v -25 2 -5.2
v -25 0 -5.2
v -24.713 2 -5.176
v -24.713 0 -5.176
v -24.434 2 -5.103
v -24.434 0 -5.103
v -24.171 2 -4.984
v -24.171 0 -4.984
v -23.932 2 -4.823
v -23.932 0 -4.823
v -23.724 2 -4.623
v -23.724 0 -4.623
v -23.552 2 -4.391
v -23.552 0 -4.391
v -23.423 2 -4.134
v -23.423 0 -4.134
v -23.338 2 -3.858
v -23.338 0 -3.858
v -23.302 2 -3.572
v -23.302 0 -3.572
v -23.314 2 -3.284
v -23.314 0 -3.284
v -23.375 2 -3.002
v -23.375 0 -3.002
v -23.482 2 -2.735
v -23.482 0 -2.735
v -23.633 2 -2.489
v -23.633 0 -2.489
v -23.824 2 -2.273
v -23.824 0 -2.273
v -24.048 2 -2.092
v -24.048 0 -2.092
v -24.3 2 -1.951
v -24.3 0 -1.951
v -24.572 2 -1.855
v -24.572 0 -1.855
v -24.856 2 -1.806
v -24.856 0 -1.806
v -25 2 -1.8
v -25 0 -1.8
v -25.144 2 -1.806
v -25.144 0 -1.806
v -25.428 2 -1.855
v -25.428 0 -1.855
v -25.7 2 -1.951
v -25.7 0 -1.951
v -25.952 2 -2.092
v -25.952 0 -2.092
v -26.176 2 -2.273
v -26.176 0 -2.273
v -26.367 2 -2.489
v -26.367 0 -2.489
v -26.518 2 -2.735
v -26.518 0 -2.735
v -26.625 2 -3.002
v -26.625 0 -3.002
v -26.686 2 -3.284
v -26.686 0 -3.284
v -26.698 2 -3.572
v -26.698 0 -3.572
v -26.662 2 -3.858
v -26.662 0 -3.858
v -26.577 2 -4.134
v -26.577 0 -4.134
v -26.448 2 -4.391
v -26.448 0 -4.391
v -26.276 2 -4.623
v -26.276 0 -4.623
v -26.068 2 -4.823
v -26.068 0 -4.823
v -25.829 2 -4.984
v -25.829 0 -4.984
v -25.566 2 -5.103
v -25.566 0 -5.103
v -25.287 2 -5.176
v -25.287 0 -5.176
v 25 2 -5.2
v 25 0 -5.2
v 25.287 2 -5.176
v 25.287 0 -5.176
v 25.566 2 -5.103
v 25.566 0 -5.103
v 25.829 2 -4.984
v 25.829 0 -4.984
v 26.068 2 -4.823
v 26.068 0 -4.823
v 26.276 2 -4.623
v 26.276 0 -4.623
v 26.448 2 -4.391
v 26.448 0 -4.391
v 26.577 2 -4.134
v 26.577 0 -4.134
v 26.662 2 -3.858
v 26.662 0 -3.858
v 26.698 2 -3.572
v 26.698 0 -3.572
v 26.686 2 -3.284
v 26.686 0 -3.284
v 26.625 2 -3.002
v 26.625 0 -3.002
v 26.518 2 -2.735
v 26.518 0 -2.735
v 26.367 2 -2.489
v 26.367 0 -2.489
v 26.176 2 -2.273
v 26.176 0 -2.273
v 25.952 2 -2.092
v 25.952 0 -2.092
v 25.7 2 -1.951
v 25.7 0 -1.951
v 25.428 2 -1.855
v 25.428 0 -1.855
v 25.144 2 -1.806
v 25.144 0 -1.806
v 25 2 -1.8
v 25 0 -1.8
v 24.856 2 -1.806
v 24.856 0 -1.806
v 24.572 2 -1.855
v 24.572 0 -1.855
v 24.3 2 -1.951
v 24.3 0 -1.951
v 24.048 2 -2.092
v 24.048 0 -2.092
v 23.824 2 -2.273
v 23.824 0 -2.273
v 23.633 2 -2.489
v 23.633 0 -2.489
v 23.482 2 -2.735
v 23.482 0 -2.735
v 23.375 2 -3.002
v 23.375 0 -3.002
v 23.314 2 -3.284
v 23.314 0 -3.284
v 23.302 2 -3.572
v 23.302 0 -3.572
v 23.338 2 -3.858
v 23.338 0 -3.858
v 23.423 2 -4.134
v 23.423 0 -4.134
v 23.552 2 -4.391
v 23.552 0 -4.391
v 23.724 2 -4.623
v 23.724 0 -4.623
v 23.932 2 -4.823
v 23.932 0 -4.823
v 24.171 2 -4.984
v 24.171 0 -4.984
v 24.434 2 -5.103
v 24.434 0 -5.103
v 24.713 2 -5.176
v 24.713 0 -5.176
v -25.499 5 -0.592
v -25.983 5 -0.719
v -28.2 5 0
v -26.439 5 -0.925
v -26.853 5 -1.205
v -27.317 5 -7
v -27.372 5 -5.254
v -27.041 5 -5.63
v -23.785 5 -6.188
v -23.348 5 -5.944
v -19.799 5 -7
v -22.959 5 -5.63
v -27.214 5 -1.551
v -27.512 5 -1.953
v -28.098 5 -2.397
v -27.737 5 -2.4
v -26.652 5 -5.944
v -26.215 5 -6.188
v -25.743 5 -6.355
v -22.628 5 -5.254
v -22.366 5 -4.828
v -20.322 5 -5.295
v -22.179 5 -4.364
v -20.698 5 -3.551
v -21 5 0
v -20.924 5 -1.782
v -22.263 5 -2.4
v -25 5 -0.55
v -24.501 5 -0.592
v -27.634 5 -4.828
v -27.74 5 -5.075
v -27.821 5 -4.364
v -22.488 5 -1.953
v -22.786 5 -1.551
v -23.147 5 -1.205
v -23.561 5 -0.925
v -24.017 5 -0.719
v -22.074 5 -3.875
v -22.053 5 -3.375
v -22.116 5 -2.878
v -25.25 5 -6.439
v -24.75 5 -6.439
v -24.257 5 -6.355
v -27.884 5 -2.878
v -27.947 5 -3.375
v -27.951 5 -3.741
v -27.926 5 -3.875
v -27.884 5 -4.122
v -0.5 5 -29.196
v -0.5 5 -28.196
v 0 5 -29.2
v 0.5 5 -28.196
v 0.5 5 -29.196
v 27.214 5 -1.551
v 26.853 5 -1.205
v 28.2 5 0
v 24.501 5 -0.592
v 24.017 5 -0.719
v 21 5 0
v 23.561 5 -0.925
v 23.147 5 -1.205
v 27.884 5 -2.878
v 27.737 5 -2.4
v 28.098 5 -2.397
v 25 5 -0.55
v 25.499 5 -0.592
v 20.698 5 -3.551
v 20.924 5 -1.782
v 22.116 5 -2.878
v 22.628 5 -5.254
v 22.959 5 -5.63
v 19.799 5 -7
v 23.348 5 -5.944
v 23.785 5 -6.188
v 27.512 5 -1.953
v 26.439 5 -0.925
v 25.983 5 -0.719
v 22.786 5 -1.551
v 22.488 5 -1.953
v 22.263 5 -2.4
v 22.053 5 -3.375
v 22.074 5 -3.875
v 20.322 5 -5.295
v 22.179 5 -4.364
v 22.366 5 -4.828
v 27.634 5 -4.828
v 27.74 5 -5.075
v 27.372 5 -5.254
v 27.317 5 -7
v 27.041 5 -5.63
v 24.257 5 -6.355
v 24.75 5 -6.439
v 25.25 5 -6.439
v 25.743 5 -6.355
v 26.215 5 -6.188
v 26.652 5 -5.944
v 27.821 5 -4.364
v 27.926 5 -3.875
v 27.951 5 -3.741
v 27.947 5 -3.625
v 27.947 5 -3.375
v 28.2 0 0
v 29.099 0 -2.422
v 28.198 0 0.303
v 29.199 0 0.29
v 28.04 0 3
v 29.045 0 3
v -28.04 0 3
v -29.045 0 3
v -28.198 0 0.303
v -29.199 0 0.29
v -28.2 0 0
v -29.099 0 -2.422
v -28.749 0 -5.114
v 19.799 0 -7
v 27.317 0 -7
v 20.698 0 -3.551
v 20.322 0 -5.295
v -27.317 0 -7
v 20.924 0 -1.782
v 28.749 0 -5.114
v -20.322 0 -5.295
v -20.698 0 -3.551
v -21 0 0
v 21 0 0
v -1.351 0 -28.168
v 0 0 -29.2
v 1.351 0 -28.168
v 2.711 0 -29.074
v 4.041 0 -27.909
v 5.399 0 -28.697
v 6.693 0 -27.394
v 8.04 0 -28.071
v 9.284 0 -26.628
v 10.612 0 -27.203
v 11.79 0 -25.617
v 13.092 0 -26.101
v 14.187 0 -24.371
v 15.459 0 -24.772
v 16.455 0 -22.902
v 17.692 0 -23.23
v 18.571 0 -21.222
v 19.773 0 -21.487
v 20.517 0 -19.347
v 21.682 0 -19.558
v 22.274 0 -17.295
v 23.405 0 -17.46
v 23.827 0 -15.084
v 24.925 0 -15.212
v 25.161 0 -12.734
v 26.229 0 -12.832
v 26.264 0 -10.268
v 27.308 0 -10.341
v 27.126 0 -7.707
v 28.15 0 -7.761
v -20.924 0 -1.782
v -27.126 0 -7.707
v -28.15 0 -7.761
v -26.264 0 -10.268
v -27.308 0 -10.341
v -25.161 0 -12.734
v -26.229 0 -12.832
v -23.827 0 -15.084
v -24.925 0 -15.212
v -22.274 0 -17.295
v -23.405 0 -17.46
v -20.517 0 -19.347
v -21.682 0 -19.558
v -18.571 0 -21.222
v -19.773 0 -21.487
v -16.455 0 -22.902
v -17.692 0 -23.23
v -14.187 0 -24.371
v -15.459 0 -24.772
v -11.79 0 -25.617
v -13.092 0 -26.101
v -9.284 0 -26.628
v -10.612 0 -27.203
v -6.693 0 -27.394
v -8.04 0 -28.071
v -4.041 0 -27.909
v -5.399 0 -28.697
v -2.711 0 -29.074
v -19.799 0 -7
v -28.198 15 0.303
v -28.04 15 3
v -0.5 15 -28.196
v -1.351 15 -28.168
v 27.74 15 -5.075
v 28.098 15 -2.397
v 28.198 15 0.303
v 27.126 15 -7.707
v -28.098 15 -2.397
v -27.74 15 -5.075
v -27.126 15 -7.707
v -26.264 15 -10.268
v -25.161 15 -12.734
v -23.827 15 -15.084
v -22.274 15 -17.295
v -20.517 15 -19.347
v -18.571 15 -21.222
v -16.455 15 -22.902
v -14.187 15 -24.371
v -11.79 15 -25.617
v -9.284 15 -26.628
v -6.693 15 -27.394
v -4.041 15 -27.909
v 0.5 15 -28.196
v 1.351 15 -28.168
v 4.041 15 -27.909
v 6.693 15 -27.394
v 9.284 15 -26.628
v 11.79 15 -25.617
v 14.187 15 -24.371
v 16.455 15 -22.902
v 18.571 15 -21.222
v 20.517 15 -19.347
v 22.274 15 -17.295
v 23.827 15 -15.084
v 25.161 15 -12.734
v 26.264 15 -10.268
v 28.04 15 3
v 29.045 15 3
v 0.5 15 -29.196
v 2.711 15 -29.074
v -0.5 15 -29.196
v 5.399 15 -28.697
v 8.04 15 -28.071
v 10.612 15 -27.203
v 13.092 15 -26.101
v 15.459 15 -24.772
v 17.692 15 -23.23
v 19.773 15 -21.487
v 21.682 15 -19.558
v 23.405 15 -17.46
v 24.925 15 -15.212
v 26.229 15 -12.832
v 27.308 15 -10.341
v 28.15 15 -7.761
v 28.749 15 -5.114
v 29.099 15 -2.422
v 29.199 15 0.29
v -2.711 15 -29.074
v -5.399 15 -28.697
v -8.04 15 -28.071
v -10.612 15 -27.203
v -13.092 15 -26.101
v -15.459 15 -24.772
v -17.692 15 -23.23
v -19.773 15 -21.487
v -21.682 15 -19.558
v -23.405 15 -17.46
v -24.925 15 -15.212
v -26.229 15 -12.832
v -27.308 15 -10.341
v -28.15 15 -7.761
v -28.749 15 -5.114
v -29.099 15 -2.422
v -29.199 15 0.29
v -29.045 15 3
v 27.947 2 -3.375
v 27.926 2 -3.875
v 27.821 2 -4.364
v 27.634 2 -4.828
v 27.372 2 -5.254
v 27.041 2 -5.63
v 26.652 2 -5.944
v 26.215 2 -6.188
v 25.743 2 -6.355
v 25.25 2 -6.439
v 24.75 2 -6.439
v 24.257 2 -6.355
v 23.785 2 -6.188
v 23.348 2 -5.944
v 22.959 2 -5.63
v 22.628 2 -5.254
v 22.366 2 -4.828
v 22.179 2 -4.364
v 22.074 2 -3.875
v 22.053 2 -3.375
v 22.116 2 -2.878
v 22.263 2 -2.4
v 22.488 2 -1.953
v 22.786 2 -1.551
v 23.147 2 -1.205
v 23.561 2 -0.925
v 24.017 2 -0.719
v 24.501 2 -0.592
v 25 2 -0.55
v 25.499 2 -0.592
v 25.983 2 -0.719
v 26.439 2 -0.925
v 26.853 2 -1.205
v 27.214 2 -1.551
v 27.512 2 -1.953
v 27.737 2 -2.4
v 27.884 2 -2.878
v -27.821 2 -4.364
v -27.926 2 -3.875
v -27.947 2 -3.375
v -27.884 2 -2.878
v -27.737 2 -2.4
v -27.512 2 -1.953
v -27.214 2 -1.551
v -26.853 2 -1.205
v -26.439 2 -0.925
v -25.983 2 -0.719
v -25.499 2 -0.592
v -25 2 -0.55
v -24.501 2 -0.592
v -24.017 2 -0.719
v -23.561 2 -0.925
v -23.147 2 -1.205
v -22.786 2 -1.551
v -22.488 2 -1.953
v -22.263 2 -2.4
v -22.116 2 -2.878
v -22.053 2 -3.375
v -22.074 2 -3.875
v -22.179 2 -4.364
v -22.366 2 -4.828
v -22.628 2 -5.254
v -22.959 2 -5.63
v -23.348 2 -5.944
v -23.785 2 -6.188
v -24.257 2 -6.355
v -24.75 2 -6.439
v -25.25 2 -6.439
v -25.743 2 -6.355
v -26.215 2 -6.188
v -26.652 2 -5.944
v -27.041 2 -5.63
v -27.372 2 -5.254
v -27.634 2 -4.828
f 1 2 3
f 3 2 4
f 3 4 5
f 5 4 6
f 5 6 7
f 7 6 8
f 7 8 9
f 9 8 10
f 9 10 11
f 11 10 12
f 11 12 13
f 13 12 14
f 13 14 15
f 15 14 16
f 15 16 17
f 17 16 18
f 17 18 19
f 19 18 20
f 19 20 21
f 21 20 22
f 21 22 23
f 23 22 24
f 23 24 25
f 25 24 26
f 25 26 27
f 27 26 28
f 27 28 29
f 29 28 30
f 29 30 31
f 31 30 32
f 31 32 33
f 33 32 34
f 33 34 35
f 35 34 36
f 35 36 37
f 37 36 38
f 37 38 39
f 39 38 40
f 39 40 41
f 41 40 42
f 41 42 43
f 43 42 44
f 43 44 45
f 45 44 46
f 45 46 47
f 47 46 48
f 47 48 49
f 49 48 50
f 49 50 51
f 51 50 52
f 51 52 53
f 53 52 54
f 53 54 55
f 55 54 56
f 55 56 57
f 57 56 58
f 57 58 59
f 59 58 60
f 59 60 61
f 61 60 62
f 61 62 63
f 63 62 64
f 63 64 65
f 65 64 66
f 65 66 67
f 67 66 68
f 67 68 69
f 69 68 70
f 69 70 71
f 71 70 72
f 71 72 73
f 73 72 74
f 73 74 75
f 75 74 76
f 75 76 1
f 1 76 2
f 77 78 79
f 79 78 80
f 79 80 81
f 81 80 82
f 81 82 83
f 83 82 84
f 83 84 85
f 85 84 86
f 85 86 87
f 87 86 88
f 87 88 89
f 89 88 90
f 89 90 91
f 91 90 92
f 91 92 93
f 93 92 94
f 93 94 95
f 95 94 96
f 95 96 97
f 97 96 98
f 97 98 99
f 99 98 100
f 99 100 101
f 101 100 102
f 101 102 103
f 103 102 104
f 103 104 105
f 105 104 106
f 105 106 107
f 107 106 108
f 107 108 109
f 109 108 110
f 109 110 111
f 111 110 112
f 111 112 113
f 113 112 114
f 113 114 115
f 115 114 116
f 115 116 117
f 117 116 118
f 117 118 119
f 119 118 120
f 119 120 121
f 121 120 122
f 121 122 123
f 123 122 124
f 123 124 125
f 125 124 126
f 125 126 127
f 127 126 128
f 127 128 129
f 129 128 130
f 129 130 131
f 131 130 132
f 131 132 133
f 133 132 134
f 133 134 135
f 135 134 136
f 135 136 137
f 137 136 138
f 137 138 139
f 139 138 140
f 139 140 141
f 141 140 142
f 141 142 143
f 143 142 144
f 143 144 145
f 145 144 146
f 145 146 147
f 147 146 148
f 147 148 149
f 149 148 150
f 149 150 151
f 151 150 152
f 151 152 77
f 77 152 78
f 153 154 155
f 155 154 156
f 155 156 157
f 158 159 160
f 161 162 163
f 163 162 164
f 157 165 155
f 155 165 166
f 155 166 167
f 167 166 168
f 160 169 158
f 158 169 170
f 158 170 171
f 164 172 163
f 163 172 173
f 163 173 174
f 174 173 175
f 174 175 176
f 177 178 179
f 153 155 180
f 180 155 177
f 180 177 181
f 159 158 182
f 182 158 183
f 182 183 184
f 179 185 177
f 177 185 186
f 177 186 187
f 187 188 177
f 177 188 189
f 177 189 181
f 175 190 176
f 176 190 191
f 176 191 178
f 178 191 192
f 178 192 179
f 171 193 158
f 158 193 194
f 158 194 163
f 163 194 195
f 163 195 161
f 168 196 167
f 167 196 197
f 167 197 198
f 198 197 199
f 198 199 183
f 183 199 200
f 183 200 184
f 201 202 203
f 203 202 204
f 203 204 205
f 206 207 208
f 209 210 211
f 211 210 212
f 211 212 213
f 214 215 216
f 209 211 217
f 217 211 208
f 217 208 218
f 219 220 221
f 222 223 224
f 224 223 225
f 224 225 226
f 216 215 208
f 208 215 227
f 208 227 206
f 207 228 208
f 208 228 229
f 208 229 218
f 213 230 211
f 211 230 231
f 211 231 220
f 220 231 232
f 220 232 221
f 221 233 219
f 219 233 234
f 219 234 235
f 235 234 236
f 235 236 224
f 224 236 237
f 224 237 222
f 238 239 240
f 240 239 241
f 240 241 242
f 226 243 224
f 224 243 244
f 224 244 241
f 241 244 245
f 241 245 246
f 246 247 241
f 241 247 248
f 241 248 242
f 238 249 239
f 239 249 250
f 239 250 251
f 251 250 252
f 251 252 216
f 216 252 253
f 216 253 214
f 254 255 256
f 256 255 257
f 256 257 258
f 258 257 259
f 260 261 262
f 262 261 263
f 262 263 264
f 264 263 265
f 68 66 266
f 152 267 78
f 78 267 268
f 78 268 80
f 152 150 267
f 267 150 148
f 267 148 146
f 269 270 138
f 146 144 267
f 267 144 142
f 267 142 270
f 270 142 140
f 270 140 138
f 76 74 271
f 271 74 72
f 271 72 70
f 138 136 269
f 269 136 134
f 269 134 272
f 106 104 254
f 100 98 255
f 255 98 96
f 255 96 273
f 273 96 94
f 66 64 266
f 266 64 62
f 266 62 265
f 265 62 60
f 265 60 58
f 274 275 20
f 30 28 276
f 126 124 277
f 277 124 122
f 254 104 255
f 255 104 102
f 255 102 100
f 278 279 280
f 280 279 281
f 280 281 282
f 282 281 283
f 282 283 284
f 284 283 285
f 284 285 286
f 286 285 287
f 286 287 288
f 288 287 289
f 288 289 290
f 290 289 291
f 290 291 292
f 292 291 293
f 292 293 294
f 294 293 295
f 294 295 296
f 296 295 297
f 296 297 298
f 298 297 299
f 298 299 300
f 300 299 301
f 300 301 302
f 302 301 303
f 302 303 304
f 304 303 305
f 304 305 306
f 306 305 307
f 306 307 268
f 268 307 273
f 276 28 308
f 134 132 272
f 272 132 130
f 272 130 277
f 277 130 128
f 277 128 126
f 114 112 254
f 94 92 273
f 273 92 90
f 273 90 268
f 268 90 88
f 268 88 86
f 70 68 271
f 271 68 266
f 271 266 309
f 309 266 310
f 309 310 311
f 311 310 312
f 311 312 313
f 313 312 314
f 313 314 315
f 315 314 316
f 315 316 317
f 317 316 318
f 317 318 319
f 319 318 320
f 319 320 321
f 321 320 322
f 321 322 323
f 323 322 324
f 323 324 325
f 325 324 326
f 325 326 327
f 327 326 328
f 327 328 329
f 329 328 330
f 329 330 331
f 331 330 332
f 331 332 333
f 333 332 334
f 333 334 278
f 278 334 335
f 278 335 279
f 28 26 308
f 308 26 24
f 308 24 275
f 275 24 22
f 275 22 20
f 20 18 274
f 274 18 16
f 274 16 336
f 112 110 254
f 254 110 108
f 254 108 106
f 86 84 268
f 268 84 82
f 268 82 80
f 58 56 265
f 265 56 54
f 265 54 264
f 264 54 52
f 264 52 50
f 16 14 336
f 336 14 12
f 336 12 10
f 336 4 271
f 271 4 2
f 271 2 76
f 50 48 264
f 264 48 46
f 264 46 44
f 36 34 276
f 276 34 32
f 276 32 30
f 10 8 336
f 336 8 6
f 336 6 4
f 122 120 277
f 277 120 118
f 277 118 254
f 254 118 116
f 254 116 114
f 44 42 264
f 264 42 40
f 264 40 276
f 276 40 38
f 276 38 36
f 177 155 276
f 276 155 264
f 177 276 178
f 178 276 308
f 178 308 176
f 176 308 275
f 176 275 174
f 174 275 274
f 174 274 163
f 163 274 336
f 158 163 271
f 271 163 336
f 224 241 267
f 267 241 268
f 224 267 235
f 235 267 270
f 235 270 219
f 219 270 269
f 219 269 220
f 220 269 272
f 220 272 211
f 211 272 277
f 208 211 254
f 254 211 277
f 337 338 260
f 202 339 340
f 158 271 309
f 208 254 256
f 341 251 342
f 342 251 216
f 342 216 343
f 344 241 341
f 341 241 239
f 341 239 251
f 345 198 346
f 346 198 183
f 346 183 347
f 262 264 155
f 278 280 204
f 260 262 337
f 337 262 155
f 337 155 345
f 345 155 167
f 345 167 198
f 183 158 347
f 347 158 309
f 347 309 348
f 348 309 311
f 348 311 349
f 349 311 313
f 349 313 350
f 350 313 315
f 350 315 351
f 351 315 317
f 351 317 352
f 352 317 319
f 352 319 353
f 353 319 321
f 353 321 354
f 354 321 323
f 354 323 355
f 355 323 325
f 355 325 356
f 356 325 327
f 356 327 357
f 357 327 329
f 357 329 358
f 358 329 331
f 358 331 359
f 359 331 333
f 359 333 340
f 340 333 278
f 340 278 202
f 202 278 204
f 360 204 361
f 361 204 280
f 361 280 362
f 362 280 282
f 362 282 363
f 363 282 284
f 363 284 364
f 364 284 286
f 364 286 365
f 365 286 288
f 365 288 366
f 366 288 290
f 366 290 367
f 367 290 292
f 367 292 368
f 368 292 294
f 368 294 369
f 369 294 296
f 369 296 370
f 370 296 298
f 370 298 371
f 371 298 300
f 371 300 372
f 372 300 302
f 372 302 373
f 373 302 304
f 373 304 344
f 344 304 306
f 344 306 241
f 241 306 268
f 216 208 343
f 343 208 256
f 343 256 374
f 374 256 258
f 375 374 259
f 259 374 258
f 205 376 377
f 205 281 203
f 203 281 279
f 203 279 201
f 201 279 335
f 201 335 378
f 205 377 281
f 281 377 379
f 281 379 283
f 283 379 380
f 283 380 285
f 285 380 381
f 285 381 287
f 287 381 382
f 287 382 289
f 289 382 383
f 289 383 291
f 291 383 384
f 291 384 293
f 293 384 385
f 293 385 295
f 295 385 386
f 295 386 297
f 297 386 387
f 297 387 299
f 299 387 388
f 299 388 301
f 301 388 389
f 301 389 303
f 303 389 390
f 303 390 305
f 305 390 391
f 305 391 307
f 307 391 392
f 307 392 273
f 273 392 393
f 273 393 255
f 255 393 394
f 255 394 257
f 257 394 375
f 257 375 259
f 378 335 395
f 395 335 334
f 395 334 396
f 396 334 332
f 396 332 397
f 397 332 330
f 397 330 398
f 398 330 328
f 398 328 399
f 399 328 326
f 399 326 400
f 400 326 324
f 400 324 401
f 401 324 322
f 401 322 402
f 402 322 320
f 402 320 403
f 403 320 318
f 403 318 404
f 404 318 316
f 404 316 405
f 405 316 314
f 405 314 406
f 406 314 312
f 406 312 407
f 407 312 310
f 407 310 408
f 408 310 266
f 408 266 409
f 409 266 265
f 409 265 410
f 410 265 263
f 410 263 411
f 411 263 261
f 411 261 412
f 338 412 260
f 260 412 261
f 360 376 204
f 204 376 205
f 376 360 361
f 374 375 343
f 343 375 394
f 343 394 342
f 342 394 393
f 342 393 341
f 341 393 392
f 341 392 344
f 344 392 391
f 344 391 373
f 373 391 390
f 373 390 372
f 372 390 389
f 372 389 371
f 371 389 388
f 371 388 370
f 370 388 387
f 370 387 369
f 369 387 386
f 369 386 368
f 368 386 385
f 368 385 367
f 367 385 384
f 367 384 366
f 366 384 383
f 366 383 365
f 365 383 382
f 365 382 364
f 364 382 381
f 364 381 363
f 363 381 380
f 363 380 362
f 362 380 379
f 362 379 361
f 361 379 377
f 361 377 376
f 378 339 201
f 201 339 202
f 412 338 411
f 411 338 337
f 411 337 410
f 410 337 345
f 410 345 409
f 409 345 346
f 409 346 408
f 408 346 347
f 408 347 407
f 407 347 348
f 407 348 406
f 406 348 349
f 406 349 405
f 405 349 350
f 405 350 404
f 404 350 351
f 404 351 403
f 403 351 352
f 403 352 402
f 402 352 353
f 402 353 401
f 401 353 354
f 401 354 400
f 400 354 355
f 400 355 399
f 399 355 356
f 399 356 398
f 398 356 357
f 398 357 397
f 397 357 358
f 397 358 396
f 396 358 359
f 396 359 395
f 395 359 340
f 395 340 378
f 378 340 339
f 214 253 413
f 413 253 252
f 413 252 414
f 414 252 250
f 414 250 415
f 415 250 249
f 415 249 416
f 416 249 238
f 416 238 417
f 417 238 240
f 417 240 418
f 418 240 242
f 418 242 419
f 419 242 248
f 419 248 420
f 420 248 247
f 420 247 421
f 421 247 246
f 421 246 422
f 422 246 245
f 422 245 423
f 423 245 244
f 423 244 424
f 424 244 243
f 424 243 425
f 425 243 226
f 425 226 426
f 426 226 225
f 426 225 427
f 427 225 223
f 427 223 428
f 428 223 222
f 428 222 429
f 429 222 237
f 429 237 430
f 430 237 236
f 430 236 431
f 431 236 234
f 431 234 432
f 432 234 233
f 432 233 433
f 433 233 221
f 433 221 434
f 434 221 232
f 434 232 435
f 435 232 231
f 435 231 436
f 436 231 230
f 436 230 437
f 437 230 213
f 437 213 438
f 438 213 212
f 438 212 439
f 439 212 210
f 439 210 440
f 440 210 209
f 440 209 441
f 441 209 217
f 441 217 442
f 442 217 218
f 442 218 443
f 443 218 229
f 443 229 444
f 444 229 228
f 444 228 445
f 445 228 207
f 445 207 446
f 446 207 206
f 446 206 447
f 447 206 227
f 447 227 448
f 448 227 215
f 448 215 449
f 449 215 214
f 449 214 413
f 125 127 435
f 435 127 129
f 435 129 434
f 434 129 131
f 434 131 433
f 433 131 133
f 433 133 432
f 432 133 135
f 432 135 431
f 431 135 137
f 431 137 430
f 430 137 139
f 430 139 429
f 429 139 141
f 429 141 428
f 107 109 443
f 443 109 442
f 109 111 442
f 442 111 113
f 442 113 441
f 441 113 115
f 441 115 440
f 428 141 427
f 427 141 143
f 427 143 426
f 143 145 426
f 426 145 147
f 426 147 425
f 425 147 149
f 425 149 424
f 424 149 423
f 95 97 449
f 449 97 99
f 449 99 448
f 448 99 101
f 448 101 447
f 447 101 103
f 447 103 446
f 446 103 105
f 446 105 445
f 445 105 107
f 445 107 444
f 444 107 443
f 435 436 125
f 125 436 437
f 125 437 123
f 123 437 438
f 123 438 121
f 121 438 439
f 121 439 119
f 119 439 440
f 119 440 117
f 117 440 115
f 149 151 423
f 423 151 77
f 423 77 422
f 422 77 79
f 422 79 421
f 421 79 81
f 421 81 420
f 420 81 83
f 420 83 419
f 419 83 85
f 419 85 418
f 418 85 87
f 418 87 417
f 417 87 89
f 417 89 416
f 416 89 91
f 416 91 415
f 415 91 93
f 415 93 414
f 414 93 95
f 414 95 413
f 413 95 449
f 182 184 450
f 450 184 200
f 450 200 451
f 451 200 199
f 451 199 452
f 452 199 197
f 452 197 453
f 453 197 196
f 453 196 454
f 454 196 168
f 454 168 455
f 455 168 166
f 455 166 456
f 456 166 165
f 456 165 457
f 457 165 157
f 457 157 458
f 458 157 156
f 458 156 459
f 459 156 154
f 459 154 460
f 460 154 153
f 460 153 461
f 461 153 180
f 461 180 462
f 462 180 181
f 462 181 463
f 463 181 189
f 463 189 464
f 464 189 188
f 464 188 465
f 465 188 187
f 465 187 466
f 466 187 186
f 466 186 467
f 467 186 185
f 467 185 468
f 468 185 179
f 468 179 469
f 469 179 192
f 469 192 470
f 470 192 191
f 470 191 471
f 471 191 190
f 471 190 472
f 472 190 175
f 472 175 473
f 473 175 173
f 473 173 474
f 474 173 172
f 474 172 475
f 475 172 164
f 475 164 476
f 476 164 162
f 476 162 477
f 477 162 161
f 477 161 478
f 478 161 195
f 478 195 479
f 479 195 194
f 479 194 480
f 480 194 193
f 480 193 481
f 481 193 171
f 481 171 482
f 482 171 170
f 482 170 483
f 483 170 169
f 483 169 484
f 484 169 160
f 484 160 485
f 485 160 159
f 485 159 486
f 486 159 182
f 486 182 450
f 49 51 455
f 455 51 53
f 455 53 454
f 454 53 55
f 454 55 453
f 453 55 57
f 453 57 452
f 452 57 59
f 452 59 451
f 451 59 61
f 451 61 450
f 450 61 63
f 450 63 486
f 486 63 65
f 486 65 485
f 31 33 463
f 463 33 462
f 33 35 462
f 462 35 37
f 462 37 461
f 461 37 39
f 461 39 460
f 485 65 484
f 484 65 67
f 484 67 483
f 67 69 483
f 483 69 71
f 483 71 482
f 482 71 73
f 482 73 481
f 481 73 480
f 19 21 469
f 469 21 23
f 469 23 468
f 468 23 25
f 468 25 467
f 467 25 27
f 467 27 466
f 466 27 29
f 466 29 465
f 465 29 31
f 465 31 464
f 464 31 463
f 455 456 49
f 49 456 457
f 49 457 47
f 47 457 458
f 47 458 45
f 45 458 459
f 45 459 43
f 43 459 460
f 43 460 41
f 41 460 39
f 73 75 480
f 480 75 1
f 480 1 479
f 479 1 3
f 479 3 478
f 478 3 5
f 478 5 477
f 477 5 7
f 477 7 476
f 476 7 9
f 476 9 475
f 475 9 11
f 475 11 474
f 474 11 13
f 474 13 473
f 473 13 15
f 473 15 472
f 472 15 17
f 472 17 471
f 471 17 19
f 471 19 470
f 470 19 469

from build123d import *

# Parameters (mm, degrees)
CROQUIS1_R              = 1.7
SALIENTE_EXTRUIR1_DEPTH = 5
SALIENTE_EXTRUIR2_DEPTH = 10
CROQUIS3_R              = 2.95
CORTAR_EXTRUIR1_DEPTH   = 3


with BuildPart() as part:
    # Croquis1 → Saliente-Extruir1 (new body)
    with BuildSketch(Plane(origin=(0, 0, 0), x_dir=(1, 0, 0), z_dir=(0, 1, 0))):
        with BuildLine():
            Line((-29.045481576, -3), (-28.039971469, -3))
            ThreePointArc((-28.039971469, -3), (-28.159964448, -1.502132578), (-28.2, 0))
            Line((-28.2, 0), (-21, 0))
            ThreePointArc((-21, 0), (-20.697569753, 3.551141553), (-19.798989873, 7))
            Line((-19.798989873, 7), (-27.317393726, 7))
            ThreePointArc((-27.317393726, 7), (0, 28.2), (27.317393726, 7))
            Line((27.317393726, 7), (19.798989873, 7))
            ThreePointArc((19.798989873, 7), (20.697569753, 3.551141553), (21, 0))
            Line((21, 0), (28.2, 0))
            ThreePointArc((28.2, 0), (28.159964448, -1.502132578), (28.039971469, -3))
            Line((28.039971469, -3), (29.045481576, -3))
            ThreePointArc((29.045481576, -3), (0, 29.2), (-29.045481576, -3))
        make_face()
        with Locations((-25, 3.5)):
            Circle(CROQUIS1_R, mode=Mode.SUBTRACT)
        with Locations((25, 3.5)):
            Circle(CROQUIS1_R, mode=Mode.SUBTRACT)
    extrude(amount=SALIENTE_EXTRUIR1_DEPTH)

    # Croquis2 → Saliente-Extruir2 (add)
    with BuildSketch(Plane(origin=(0, 5, 0), x_dir=(1, 0, 0), z_dir=(0, 1, 0))):
        with BuildLine():
            Line((28.039971469, -3), (29.045481576, -3))
            ThreePointArc((29.045481576, -3), (21.848911842, 19.371759118), (0.5, 29.195718864))
            Line((0.5, 29.195718864), (0.5, 28.195567027))
            ThreePointArc((0.5, 28.195567027), (21.140561568, 18.663243464), (28.039971469, -3))
        make_face()
        with BuildLine():
            Line((-29.045481576, -3), (-28.039971469, -3))
            ThreePointArc((-28.039971469, -3), (-21.140561568, 18.663243464), (-0.5, 28.195567027))
            Line((-0.5, 28.195567027), (-0.5, 29.195718864))
            ThreePointArc((-0.5, 29.195718864), (-21.848911842, 19.371759118), (-29.045481576, -3))
        make_face()
    extrude(amount=SALIENTE_EXTRUIR2_DEPTH)

    # Croquis3 → Cortar-Extruir1 (cut)
    with BuildSketch(Plane(origin=(0, 5, 0), x_dir=(1, 0, 0), z_dir=(0, 1, 0))):
        with Locations((-25, 3.5)):
            Circle(CROQUIS3_R)
        with Locations((25, 3.5)):
            Circle(CROQUIS3_R)
    extrude(amount=-CORTAR_EXTRUIR1_DEPTH, mode=Mode.SUBTRACT)


solid = part.part
